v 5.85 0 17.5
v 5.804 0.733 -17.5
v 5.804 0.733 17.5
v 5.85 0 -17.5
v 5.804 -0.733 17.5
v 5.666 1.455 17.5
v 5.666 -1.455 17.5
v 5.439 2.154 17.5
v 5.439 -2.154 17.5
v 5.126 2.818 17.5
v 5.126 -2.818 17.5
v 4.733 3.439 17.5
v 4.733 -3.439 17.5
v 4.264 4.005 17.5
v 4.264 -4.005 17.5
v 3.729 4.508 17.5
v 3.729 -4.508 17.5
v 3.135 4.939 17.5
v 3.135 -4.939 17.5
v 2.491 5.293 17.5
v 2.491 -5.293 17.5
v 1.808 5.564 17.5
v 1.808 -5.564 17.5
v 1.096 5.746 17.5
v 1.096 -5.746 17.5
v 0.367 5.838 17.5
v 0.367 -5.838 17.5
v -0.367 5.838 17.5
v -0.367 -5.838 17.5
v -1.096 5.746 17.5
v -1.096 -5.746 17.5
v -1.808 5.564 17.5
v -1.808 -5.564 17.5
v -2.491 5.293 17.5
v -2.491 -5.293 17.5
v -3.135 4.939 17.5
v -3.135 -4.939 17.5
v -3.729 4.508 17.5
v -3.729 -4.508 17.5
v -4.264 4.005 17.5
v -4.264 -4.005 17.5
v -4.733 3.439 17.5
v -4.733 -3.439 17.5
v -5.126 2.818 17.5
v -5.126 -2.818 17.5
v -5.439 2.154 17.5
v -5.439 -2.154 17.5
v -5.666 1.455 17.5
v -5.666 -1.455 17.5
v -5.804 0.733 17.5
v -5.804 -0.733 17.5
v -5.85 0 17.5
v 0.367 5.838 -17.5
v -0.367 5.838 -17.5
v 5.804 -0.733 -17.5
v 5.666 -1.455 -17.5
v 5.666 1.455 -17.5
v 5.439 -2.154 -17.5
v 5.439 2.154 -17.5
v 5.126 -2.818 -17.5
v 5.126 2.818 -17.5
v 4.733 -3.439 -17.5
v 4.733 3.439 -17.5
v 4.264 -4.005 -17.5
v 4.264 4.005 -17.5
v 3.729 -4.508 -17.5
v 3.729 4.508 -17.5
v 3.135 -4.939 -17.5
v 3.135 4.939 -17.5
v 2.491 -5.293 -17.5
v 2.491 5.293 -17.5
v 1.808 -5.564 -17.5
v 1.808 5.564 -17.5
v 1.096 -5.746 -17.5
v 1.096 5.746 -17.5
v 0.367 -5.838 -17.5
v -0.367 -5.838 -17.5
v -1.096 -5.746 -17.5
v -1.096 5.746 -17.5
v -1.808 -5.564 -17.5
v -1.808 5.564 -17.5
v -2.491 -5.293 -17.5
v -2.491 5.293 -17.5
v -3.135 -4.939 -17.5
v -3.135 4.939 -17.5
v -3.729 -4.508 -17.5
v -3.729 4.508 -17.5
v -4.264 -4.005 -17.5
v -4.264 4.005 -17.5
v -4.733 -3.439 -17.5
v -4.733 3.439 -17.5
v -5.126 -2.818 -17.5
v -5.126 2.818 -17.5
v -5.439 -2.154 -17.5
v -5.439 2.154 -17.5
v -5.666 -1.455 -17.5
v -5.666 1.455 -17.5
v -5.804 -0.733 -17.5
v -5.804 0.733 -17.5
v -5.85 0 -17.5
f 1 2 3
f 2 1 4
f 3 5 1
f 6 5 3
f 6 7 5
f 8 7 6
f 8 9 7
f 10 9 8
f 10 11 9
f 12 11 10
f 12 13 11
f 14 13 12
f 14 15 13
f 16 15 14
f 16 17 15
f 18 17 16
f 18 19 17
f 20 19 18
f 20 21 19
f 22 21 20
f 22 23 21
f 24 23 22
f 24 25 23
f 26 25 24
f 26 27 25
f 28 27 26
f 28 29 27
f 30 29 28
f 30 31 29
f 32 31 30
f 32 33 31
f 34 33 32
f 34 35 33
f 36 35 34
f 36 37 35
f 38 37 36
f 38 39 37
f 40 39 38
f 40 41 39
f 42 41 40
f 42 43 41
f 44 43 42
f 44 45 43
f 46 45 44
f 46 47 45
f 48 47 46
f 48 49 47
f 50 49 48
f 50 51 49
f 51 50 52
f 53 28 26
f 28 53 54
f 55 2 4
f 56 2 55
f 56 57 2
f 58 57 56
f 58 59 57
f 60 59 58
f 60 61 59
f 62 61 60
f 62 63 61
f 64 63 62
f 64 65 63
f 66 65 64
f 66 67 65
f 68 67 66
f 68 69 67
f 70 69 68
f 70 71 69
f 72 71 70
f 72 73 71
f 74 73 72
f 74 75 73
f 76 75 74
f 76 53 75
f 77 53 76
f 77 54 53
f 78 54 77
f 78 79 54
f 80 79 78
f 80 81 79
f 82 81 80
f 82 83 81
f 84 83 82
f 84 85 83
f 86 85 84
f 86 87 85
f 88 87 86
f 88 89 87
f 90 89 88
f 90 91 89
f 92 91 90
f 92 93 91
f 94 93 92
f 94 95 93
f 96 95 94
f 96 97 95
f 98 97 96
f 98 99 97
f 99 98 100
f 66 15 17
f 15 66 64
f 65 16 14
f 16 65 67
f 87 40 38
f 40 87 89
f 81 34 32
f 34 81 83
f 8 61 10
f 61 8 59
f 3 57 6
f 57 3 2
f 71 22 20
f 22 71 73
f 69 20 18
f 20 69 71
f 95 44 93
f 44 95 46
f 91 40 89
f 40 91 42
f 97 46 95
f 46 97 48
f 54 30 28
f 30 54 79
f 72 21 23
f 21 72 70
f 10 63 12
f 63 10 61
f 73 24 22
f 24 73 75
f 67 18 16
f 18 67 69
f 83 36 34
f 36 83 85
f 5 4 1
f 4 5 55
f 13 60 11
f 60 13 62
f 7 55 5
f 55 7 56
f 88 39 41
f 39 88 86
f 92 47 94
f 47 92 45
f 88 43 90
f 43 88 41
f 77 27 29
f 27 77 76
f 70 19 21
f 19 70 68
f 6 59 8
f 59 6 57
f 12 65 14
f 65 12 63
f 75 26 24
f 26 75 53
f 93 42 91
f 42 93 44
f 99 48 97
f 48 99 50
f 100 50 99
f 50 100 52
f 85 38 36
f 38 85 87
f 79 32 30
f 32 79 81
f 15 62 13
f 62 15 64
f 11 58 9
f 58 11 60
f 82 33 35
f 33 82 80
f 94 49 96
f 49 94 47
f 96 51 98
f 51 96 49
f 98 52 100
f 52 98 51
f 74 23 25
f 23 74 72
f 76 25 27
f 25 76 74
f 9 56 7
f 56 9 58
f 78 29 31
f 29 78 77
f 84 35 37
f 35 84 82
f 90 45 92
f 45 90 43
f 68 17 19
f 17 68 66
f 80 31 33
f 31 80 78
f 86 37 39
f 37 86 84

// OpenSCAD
$fn = 50;


difference() {
	union() {
		translate(v = [0, 0, -17.5000000000]) {
			cylinder(h = 35, r = 5.8500000000);
		}
	}
	union() {
		translate(v = [0, 0, -100.0000000000]) {
			cylinder(h = 200, r = 0);
		}
	}
}
